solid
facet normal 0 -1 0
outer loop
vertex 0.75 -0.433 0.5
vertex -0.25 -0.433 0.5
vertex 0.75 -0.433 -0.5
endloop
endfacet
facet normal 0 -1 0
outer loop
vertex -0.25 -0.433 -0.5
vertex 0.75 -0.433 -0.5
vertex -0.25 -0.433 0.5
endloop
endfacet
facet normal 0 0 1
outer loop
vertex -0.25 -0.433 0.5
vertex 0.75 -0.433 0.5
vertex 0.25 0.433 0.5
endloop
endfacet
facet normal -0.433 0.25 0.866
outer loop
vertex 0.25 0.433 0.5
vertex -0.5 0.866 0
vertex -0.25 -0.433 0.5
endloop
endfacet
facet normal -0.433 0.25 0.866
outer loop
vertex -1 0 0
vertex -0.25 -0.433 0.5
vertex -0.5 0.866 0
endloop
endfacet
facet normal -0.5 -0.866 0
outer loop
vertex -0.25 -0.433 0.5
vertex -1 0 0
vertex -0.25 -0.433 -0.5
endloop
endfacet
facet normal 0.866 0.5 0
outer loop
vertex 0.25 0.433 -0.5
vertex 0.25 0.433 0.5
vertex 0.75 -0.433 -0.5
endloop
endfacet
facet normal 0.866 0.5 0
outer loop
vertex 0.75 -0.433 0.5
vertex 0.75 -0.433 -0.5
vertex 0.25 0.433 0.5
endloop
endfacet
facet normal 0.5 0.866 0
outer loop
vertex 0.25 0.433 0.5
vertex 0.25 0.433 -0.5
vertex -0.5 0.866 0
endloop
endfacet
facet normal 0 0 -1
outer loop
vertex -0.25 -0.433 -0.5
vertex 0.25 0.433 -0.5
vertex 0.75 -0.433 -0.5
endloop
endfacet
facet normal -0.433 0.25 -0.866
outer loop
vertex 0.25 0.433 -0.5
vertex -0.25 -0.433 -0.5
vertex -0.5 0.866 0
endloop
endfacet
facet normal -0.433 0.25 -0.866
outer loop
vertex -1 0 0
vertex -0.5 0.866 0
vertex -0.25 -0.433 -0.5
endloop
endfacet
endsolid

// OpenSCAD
polyhedron( points = [[-0.250000000048098, -0.433012701919675, 0.500000000010682], [0.250000000003635, 0.433012701894505, 0.500000000010682], [0.749999999951683, -0.433012701919675, 0.500000000010682], [-0.250000000003201, -0.433012701893754, -0.4999999999891], [0.250000000013123, 0.433012701859097, -0.50000000000808], [0.749999999951683, -0.433012701893754, -0.500000000034], [-0.999999999988341, 1.98159821884715e-11, -1.16570086916542e-11], [-0.499999999880485, 0.866025403853441, 1.07910347324468e-11]], faces = [[0, 3, 5, 2], [0, 2, 1], [0, 1, 7, 6], [0, 6, 3], [1, 2, 5, 4], [1, 4, 7], [3, 4, 5], [3, 6, 7, 4]]);
